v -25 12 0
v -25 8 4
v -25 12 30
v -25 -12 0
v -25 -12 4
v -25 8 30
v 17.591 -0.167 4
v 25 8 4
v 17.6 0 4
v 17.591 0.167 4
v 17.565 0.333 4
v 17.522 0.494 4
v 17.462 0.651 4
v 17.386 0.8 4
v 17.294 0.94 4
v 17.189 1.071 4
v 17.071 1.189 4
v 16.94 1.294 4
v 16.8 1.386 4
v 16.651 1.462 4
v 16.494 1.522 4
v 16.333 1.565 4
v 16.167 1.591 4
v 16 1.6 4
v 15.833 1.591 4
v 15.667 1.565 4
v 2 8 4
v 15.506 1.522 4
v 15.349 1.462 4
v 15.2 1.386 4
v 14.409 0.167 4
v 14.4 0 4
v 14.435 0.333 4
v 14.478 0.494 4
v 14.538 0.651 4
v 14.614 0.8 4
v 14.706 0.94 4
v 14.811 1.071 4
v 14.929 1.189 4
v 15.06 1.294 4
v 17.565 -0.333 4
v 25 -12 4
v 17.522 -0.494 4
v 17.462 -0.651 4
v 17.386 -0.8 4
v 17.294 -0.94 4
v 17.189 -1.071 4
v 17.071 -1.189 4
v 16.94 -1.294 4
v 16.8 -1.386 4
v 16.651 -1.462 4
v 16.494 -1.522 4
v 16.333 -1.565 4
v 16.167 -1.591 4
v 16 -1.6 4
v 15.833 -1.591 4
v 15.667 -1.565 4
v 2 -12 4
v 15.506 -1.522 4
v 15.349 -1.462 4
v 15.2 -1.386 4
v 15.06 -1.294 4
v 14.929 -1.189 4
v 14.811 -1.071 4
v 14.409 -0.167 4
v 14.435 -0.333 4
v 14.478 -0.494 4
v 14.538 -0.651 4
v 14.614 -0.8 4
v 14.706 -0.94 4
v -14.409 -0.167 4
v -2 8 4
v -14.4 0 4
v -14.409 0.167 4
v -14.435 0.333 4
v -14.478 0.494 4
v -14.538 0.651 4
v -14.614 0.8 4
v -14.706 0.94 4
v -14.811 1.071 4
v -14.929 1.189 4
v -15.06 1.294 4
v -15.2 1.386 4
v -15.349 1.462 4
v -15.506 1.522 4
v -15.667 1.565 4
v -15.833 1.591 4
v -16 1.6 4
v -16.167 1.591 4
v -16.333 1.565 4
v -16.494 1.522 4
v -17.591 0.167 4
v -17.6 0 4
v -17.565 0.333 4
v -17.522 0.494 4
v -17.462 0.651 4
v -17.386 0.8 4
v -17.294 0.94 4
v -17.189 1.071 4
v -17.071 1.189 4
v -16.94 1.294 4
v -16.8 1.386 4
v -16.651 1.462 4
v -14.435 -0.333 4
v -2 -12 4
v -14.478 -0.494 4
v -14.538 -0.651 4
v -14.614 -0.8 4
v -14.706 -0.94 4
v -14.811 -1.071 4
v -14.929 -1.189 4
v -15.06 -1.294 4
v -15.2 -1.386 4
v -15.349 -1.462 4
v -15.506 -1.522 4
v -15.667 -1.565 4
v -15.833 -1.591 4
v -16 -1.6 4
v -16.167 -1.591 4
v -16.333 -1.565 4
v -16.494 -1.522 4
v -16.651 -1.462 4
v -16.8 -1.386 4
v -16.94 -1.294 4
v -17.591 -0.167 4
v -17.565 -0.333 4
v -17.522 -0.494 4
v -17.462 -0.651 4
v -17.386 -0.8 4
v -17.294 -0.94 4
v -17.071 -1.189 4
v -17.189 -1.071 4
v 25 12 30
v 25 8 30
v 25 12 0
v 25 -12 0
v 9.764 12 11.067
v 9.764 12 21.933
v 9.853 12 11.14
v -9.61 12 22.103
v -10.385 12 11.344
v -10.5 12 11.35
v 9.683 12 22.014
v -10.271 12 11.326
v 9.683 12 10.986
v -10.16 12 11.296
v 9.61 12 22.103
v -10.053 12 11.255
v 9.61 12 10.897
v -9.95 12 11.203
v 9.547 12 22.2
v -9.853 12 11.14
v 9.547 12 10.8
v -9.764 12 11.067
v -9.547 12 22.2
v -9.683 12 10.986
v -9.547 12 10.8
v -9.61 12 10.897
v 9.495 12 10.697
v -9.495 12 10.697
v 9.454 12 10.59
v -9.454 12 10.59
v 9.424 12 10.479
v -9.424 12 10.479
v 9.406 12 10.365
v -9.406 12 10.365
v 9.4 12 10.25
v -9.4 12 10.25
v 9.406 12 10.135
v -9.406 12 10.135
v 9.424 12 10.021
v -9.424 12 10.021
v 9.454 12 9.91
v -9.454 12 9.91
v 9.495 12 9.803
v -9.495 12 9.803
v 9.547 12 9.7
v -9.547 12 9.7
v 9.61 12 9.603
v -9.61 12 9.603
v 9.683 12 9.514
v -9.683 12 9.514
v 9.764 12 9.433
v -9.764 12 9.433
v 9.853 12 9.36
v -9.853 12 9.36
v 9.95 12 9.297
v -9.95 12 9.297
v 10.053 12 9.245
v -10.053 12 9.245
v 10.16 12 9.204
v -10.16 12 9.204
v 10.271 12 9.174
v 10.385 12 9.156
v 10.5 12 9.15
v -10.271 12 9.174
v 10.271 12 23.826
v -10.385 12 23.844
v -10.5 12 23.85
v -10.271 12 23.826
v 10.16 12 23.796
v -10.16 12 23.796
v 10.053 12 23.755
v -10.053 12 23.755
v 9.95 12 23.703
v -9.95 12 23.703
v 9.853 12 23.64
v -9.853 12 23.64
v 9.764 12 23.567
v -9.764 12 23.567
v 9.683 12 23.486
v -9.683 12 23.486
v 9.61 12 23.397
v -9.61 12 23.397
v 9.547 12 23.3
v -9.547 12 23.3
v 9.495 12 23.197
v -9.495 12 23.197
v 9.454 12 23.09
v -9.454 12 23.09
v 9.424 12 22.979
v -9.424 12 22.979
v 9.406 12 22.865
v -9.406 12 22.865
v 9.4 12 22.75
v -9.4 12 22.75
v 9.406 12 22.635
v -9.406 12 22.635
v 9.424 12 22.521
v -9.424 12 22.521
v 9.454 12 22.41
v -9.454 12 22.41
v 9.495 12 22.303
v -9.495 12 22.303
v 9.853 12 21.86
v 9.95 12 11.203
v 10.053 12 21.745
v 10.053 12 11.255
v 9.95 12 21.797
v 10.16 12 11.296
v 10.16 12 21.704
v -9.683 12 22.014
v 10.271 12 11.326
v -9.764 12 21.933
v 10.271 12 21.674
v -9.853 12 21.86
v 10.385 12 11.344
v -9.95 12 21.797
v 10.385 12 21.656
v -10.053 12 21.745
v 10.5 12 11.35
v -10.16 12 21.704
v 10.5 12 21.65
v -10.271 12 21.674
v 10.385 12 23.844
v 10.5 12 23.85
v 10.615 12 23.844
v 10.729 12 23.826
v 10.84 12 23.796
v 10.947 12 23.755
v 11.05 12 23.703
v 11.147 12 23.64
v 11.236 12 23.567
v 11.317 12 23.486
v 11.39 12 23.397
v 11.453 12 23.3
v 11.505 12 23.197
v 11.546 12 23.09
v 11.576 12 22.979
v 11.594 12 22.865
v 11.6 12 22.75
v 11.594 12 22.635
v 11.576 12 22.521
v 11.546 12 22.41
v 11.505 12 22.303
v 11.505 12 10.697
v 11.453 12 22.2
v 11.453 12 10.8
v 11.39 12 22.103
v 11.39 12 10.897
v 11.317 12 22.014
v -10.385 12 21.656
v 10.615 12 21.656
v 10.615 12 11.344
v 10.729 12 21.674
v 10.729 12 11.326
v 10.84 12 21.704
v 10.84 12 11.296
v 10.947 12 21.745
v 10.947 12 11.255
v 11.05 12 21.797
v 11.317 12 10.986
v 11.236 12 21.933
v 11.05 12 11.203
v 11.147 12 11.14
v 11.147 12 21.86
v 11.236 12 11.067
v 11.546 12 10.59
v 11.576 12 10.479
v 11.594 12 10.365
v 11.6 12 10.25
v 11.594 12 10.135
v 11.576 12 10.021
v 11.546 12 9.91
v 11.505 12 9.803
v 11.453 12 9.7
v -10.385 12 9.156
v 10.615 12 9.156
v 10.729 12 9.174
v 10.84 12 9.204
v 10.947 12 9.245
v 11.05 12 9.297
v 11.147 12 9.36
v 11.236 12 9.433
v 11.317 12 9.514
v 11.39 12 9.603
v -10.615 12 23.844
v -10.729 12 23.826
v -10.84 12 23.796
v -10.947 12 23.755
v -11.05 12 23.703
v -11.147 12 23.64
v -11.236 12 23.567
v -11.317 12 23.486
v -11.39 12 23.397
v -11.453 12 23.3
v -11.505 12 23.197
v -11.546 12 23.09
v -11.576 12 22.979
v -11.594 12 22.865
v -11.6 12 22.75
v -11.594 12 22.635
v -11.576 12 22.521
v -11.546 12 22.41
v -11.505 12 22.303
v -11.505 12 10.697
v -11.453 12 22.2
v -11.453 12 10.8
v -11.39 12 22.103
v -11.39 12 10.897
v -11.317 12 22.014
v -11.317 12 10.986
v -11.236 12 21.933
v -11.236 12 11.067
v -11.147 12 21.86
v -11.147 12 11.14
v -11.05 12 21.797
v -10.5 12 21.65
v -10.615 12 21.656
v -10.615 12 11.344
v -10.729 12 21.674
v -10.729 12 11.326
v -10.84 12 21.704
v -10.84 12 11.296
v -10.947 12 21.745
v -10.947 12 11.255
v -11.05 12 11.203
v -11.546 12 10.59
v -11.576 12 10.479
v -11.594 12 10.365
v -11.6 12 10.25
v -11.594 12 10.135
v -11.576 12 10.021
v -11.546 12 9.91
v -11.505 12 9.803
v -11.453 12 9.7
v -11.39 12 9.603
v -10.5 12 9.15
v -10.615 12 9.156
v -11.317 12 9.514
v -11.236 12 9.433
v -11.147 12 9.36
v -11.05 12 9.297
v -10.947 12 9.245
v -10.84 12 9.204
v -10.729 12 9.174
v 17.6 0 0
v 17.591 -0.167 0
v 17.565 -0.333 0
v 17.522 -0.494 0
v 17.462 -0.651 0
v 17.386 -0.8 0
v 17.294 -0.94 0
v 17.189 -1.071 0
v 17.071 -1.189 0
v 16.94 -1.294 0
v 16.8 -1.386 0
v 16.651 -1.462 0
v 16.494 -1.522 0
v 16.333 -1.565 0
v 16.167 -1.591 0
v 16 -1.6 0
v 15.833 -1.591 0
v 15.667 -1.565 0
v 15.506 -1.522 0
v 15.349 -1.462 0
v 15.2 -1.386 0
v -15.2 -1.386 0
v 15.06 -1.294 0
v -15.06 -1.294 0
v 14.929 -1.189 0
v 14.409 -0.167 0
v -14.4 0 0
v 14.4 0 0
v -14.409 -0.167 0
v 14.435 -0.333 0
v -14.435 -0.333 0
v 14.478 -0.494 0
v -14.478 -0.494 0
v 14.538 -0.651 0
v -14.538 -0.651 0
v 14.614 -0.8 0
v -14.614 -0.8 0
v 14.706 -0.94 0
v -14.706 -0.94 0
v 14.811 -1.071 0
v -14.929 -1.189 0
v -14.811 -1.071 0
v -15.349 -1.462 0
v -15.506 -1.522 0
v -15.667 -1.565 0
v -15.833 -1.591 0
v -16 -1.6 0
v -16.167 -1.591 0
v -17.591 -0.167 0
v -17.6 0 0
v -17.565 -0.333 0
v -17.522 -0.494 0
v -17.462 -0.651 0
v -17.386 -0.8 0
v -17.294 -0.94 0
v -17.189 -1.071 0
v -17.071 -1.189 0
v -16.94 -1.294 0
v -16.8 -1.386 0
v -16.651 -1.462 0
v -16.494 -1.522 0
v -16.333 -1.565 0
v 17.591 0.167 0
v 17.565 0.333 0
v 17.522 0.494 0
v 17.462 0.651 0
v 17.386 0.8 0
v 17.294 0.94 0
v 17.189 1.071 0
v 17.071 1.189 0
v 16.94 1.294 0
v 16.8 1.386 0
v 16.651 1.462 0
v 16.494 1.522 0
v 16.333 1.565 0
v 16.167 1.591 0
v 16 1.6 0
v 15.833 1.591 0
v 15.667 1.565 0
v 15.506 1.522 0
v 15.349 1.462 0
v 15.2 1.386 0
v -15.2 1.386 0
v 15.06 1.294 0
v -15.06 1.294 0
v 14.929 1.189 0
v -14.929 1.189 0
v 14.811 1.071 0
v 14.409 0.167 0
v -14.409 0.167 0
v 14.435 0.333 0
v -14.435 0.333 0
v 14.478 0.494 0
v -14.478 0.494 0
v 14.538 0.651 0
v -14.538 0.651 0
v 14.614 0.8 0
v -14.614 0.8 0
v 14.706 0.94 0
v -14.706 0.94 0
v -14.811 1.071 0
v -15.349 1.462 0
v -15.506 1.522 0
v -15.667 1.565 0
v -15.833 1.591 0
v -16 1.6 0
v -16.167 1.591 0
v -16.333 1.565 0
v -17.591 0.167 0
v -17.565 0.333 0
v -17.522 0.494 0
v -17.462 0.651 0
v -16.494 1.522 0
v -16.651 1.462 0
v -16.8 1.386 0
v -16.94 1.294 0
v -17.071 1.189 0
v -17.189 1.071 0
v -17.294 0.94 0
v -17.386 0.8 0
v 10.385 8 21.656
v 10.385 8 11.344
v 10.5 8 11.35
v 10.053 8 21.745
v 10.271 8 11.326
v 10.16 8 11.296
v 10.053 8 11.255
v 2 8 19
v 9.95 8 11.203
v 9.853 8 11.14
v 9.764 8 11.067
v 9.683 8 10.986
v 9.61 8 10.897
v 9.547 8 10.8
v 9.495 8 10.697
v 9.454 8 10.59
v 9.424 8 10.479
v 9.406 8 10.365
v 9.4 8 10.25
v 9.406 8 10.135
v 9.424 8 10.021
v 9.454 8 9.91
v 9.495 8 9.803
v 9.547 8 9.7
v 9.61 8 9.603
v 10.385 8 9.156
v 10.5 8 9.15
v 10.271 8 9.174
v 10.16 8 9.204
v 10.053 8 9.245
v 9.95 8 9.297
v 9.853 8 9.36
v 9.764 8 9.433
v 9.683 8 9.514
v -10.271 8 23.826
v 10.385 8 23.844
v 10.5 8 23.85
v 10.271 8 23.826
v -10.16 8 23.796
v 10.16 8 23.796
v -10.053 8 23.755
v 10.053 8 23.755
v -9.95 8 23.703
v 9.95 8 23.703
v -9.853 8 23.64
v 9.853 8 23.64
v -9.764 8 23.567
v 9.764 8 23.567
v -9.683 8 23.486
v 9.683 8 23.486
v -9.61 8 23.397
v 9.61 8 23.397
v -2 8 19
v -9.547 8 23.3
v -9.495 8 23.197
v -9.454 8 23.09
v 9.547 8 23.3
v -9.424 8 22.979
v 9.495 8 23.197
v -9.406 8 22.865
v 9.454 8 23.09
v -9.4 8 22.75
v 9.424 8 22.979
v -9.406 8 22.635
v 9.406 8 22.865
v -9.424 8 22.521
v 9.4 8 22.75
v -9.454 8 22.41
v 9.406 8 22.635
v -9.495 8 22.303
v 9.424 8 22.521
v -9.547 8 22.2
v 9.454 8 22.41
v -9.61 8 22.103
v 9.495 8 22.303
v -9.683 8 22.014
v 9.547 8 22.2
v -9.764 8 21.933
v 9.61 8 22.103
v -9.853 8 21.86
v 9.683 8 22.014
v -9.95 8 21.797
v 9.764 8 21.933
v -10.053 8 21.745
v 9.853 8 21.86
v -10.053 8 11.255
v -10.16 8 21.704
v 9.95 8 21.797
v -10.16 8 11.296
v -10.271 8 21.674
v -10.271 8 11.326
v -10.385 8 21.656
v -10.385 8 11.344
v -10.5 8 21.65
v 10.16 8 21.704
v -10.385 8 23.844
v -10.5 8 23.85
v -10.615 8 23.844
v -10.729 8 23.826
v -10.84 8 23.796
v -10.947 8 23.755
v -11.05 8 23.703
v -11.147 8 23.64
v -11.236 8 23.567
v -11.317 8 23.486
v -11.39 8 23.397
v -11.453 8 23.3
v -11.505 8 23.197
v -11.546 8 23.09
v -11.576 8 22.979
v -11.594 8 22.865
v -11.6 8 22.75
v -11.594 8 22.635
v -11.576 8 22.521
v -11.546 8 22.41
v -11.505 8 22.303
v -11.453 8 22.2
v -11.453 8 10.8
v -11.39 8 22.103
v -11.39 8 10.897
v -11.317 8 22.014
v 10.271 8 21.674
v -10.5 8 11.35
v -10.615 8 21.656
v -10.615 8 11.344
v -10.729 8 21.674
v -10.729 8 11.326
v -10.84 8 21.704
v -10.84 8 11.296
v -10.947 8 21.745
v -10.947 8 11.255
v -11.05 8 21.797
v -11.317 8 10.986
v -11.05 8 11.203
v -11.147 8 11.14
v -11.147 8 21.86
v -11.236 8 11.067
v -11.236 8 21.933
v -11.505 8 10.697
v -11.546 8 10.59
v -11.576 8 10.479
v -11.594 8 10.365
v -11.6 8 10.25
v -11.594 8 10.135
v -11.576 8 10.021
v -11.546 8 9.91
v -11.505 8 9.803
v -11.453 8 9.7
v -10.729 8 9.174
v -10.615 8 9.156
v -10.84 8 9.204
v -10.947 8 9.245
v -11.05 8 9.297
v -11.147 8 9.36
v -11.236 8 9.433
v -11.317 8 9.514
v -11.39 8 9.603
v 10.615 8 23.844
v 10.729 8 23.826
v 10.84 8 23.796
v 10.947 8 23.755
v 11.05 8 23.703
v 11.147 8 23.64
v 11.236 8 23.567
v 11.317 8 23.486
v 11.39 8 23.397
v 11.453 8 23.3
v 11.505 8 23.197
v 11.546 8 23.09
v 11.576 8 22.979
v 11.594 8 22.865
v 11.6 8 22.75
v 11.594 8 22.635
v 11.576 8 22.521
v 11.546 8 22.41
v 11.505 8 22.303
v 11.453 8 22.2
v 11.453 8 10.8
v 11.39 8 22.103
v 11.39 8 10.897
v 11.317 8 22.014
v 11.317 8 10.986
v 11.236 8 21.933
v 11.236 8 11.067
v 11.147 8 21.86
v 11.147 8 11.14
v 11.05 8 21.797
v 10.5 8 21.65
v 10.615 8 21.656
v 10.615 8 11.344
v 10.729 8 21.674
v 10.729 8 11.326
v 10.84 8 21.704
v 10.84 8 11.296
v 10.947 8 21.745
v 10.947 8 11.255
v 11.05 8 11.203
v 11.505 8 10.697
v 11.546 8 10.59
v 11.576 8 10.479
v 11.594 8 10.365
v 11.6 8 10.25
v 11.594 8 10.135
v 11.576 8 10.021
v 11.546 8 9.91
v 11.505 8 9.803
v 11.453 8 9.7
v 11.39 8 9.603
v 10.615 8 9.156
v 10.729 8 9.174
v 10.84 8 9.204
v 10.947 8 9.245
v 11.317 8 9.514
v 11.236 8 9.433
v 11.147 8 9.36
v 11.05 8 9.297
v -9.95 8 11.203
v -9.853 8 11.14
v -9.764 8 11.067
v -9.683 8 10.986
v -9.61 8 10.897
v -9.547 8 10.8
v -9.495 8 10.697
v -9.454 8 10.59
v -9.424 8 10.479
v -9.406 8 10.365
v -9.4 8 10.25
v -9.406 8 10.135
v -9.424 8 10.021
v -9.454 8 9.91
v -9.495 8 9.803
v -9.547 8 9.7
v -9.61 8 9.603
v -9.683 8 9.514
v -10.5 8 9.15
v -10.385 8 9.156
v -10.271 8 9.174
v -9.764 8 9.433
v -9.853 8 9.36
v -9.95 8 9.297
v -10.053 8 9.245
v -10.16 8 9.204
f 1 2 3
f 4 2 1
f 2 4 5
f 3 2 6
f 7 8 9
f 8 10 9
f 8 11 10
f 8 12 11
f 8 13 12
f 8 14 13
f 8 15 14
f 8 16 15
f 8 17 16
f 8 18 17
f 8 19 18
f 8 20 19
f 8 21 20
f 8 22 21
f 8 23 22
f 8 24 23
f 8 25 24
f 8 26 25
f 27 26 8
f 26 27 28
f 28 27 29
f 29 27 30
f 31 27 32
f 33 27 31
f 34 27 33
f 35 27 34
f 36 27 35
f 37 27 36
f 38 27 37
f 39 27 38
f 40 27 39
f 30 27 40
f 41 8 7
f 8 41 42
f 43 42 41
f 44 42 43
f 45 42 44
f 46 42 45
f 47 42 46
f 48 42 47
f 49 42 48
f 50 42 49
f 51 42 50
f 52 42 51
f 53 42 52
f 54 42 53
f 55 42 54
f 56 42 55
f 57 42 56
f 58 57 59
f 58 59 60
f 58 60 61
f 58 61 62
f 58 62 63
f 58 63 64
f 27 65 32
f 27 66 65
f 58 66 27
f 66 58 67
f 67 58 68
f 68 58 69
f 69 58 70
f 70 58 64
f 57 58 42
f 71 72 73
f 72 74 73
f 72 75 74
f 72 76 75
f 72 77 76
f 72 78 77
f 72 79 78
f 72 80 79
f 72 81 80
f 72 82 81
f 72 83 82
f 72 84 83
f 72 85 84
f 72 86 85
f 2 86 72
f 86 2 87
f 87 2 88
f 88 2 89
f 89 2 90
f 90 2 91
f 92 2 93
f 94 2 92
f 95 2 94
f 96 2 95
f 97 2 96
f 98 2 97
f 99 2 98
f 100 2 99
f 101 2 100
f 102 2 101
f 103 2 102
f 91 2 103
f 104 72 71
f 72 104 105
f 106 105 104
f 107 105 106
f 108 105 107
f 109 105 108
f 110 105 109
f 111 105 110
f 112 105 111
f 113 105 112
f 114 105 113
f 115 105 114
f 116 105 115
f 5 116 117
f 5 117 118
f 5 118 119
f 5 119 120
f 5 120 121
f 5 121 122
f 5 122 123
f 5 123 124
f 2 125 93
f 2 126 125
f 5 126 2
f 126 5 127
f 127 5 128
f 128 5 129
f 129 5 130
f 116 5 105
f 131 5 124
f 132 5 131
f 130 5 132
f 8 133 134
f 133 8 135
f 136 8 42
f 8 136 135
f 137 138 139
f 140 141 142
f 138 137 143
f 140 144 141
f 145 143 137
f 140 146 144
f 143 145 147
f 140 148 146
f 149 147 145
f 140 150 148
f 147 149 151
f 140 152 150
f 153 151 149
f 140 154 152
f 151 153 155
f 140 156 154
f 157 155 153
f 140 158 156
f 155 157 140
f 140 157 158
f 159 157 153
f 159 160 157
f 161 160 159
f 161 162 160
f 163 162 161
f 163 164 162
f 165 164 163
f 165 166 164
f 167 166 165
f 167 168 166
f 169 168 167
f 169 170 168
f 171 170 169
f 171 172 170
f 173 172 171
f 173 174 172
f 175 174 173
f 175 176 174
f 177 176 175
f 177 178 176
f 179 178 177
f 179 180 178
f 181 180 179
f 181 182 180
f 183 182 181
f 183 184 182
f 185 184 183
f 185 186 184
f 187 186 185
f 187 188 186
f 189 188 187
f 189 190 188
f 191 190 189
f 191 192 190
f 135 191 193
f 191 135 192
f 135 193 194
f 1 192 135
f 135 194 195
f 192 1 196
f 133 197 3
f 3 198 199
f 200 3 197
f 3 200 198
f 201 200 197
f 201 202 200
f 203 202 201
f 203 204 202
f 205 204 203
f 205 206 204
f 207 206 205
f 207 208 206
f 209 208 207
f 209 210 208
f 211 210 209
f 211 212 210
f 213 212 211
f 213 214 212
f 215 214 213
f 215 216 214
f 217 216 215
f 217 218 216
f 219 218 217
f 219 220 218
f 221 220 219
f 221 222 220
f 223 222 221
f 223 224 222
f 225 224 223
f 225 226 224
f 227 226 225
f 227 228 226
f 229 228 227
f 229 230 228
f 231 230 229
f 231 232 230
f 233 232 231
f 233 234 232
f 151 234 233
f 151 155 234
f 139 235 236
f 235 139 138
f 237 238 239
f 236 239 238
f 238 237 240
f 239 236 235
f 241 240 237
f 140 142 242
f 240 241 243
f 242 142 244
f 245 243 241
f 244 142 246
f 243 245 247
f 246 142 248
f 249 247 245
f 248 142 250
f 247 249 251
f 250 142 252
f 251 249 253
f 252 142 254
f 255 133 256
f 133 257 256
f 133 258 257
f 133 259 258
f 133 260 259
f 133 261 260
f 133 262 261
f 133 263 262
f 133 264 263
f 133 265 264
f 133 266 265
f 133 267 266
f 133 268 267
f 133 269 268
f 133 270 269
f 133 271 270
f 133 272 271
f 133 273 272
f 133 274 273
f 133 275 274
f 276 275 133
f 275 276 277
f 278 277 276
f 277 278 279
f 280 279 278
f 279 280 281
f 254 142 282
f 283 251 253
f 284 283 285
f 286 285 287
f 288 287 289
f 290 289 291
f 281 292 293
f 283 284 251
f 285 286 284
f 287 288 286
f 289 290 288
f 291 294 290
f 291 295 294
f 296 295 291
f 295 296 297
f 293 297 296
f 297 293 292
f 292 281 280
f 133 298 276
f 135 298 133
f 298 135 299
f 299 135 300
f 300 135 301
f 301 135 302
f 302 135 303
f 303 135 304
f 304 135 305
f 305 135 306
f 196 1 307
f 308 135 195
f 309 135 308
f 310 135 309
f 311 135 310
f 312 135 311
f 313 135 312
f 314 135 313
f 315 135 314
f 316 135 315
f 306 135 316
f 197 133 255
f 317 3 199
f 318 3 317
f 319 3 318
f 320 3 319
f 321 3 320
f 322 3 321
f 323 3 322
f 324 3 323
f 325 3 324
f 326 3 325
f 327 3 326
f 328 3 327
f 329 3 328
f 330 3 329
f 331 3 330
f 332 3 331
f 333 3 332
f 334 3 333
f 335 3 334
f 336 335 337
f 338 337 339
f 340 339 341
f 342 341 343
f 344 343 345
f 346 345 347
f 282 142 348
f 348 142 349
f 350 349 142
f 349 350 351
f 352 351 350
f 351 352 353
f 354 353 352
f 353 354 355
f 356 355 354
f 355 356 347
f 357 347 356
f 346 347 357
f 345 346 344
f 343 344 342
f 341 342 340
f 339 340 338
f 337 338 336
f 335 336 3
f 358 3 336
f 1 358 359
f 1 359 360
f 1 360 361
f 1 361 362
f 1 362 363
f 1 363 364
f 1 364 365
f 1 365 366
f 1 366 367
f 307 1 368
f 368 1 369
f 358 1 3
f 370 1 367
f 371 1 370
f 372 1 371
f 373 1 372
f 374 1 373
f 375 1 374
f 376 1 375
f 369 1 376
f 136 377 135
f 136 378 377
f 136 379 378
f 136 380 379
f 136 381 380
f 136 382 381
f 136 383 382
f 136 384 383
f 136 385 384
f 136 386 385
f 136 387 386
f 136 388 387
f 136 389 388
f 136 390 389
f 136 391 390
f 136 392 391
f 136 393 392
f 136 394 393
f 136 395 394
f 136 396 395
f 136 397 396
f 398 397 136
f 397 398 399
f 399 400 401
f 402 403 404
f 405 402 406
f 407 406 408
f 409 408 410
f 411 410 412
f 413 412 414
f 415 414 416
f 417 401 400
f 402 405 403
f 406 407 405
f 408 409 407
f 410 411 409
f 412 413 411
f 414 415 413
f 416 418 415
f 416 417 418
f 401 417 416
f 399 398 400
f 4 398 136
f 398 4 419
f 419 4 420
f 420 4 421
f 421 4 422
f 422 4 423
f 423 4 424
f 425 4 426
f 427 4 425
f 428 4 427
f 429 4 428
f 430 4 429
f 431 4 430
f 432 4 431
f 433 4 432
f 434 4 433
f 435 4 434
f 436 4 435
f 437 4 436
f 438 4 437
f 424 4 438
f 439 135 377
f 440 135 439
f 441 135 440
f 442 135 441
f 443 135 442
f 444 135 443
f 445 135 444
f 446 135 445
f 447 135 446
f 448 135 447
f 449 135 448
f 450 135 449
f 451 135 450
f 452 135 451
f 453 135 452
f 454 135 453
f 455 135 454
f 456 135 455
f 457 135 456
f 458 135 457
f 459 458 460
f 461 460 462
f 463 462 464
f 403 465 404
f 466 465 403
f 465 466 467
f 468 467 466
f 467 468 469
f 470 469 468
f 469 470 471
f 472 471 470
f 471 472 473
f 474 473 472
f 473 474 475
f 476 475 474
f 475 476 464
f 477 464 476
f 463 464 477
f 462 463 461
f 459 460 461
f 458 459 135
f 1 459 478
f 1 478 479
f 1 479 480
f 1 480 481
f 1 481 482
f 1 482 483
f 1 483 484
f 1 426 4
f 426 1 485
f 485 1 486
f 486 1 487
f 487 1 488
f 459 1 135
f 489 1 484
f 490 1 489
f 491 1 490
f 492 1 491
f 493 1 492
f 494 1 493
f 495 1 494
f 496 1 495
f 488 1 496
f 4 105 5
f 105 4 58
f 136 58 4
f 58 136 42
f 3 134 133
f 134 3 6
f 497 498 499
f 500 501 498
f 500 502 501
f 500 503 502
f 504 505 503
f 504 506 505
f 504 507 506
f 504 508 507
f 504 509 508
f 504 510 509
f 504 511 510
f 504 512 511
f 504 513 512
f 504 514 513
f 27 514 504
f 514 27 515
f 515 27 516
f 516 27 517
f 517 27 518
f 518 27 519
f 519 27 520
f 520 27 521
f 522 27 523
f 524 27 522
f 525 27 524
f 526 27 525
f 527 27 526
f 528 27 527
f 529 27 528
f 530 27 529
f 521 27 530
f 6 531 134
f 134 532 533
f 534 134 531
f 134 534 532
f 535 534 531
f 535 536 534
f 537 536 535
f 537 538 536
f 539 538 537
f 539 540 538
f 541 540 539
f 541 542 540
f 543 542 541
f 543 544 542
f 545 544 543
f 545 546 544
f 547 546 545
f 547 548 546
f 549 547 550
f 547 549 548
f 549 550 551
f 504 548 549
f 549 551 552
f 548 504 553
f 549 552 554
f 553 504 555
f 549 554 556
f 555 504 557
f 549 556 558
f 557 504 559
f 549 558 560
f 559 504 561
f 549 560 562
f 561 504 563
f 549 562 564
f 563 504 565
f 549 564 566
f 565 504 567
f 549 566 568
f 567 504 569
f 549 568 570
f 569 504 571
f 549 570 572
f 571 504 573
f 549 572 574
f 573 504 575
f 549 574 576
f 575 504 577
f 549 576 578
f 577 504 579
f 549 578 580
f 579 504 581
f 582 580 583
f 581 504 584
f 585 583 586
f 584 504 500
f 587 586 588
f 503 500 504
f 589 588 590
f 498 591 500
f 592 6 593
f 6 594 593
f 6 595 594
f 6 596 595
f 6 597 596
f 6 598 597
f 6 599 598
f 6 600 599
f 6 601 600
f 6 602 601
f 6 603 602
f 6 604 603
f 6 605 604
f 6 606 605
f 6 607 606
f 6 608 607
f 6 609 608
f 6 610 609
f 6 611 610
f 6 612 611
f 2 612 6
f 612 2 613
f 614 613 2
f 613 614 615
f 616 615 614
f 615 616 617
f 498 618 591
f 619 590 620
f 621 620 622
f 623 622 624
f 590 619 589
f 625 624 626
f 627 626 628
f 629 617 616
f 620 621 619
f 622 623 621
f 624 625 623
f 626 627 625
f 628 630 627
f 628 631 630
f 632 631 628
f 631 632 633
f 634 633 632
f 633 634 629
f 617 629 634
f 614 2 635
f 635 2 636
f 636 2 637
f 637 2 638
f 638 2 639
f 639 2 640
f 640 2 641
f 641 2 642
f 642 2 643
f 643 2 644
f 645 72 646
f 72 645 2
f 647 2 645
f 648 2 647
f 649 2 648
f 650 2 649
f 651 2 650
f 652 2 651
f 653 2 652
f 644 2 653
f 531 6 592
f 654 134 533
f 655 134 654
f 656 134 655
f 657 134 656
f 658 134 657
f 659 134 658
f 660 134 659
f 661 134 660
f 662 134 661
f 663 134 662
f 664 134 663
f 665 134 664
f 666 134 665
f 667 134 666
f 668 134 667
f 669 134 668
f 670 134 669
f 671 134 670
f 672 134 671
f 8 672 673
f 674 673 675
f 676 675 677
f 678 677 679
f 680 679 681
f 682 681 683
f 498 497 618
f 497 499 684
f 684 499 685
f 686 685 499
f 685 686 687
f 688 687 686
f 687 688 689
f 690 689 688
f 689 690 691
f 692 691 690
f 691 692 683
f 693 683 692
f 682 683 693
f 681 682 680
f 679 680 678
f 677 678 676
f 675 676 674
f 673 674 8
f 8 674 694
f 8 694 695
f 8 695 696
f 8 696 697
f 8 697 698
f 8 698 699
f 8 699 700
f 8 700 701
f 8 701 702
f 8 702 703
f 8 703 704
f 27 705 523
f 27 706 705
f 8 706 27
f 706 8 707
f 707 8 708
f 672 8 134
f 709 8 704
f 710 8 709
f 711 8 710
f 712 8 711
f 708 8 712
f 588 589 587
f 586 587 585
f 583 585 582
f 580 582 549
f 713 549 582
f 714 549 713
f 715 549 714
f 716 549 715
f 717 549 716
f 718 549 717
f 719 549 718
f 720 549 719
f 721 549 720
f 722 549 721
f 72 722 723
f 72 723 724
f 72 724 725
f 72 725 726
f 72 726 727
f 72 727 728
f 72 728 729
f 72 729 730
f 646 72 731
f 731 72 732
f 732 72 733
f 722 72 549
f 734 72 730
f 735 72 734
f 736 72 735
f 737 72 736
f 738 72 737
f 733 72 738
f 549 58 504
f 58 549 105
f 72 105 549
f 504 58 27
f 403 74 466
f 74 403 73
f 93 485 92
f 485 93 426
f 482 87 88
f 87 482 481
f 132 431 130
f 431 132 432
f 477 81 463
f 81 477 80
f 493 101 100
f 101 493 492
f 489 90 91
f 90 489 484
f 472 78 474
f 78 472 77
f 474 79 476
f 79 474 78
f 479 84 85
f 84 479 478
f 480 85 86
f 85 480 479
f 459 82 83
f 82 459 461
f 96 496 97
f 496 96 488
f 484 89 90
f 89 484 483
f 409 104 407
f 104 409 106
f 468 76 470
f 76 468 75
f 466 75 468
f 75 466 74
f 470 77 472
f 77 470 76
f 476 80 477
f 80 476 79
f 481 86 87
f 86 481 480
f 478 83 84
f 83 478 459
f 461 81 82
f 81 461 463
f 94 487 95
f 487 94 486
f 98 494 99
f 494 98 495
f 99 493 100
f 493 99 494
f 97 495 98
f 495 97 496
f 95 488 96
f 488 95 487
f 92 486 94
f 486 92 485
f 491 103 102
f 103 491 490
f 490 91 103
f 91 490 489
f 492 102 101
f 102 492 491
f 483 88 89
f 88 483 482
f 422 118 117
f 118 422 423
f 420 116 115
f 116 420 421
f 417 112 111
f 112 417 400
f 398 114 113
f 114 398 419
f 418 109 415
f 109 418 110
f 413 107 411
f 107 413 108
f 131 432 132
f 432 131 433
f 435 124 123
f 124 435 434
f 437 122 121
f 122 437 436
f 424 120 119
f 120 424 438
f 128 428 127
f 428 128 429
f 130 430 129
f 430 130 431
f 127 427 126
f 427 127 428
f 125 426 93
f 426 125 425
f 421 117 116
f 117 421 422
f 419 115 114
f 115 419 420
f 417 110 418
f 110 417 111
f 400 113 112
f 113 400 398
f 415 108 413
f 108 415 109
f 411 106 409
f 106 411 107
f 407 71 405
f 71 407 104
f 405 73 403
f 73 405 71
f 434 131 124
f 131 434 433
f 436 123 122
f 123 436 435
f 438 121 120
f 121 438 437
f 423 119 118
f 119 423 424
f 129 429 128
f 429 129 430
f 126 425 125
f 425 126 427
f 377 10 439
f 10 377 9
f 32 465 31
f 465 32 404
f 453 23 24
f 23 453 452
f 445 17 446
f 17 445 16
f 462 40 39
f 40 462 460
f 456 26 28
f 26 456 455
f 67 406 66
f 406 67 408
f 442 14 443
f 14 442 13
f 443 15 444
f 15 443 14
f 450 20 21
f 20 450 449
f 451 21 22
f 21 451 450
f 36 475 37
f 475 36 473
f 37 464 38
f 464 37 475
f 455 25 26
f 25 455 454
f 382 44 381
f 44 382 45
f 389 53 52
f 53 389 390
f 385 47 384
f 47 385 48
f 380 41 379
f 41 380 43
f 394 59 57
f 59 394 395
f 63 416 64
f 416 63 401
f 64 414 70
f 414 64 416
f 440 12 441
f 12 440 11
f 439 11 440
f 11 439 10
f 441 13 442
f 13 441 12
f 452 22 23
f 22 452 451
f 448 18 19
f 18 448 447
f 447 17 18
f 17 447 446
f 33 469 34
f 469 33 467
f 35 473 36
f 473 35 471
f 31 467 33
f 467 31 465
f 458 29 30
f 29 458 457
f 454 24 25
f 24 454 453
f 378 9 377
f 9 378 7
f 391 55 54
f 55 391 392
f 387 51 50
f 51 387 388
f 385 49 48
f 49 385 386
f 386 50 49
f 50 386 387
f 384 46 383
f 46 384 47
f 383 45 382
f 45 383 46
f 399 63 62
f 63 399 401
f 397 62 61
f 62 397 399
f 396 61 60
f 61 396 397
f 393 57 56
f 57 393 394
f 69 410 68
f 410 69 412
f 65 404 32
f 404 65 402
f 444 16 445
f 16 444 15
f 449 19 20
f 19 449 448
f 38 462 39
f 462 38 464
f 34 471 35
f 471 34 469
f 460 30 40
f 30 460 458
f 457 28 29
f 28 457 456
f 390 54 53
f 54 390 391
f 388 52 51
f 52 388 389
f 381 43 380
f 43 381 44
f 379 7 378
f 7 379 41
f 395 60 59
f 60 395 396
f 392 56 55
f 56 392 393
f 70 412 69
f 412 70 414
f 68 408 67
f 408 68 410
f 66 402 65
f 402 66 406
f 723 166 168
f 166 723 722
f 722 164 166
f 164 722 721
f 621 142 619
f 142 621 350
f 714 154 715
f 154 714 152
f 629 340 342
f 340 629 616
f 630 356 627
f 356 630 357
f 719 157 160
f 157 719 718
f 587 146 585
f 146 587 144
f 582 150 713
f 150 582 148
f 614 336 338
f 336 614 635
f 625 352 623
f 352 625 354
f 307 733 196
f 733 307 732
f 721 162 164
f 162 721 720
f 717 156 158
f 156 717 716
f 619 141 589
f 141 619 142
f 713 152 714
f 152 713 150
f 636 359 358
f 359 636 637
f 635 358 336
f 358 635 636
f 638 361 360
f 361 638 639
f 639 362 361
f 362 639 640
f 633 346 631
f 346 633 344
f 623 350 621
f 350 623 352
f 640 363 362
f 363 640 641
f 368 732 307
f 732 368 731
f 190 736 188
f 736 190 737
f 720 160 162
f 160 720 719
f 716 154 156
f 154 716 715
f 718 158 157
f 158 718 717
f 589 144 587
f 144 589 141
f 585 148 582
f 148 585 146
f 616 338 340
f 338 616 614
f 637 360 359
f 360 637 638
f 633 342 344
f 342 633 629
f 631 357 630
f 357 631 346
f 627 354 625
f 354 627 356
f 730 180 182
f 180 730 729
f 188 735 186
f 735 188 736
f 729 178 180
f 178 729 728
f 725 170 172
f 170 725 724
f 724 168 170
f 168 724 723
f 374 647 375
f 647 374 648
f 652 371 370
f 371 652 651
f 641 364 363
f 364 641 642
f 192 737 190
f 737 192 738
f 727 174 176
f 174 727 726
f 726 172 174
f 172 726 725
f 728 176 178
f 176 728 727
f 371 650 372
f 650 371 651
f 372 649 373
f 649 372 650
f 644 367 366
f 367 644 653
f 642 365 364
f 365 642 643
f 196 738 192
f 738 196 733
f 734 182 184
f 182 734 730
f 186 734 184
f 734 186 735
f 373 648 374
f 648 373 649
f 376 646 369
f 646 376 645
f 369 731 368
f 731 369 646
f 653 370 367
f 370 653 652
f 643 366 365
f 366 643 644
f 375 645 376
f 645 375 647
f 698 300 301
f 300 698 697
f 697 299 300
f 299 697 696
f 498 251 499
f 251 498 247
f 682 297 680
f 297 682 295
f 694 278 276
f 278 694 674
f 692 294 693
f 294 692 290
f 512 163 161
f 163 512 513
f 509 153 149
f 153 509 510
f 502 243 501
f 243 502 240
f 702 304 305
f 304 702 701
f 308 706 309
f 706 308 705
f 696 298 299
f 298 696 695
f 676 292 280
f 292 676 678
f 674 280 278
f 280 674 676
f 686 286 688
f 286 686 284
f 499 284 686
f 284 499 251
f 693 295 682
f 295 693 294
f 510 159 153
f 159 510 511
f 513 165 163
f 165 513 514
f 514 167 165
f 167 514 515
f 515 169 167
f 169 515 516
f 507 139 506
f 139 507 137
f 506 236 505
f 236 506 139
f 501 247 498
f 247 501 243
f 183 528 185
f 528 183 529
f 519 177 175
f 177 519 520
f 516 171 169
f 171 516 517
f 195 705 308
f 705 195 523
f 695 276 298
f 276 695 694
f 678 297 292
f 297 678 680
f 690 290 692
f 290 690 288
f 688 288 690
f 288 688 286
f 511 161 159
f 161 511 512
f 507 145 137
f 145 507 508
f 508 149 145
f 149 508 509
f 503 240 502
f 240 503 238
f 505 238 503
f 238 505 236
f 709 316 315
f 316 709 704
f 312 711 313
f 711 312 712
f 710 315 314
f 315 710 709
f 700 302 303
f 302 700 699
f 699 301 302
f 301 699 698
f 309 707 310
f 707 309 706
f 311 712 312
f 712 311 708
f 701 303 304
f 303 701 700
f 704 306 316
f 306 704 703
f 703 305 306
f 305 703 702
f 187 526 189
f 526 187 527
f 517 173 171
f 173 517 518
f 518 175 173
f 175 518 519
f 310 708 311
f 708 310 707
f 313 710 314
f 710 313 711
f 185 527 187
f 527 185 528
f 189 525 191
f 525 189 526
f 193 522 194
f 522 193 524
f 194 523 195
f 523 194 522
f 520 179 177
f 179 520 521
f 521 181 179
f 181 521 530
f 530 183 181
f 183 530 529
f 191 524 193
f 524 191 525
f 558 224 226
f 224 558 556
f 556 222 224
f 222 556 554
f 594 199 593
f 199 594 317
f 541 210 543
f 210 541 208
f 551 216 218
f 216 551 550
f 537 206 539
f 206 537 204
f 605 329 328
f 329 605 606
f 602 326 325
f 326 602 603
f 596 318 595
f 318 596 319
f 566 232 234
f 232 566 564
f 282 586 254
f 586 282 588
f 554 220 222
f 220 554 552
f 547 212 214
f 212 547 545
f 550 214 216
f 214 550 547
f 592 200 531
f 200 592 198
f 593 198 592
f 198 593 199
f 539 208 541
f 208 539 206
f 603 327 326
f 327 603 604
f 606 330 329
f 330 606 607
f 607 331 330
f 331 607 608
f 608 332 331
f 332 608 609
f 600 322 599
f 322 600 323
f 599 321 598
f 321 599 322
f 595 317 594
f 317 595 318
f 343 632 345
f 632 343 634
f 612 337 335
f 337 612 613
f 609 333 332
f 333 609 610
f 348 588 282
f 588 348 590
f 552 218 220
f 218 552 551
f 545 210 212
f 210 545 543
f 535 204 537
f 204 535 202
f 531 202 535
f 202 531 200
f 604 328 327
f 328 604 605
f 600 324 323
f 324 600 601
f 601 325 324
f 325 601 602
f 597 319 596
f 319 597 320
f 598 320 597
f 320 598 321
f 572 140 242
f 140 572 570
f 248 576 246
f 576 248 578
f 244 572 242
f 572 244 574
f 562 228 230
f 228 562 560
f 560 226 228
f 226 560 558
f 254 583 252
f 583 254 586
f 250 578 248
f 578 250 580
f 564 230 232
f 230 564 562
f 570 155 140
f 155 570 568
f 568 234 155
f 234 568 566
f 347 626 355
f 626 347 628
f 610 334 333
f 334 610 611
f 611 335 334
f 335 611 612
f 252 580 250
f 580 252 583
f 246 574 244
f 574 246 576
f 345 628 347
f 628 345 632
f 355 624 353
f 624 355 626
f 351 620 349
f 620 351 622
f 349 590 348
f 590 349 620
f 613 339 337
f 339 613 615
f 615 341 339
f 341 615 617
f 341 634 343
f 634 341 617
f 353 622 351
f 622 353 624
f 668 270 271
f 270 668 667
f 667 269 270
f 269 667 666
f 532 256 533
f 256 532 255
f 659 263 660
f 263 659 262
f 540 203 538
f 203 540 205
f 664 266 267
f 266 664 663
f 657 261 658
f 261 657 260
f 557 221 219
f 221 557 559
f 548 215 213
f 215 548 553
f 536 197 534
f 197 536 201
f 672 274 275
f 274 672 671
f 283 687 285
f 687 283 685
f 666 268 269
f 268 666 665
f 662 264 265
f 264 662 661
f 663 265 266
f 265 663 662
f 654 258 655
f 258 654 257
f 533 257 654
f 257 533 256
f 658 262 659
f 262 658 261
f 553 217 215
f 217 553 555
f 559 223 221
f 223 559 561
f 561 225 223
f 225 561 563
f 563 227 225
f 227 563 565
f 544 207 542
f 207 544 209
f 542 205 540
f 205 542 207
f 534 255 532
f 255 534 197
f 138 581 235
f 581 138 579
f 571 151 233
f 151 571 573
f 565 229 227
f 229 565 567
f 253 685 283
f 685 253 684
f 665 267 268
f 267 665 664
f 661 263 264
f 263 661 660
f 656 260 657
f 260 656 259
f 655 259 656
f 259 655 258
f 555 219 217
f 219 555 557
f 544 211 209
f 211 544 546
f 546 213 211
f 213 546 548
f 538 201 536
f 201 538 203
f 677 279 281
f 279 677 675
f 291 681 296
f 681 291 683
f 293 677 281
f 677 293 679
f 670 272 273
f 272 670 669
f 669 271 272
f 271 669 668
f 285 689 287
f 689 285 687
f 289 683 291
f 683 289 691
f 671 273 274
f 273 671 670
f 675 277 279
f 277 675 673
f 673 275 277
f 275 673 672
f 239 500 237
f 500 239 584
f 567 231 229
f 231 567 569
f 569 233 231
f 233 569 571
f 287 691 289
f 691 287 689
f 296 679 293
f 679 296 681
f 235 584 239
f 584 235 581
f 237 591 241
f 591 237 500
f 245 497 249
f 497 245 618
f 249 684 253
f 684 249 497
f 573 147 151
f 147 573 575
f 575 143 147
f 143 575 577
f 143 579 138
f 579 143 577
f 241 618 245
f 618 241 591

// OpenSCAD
$fn = 60; // ความละเอียดรูกลมมาตรฐาน

module pi_cam3_damper_mount_fixed() {
    difference() {
        // --- 1. ชิ้นงานตันหลัก (Solid Body - แผ่นฐาน + ผนังตั้งทึบ + Rib ค้ำเนียน) ---
        union() {
            // [ฐานแบนราบรับลูกยาง] หนา 4mm ขนาดกว้าง 50x24mm หน้าสัมผัสเนียนราบเพื่อแนบกับฐานลูกยาง
            translate([-25, -12, 0]) cube([50, 24, 4]);
            
            // [ผนังตั้งหิ้วบอร์ดกล้อง] หนา 4mm แผ่นตันเต็มความแข็งแรงสูง (กว้าง 50mm / สูง 30mm)
            translate([-25, 8, 0]) cube([50, 4, 30]);
            
            // ====================================================
            // [แก้ไขแล้ว!] จัดระเบียบ Faces ใหม่ให้ Mesh ปิดสนิท ไม่เกิด Error ตอนกด F6
            // ====================================================
            translate([-2, -12, 4])
            polyhedron(
                points = [
                    [0,  0,  0],  // 0: หน้าล่างซ้าย
                    [4,  0,  0],  // 1: หน้าล่างขวา
                    [4, 20,  0],  // 2: หลังล่างขวา (ชนผนังตั้ง)
                    [0, 20,  0],  // 3: หลังล่างซ้าย (ชนผนังตั้ง)
                    [0, 20, 15],  // 4: หลังบนซ้าย (ชนผนังตั้ง)
                    [4, 20, 15]   // 5: หลังบนขวา (ชนผนังตั้ง)
                ],
                // เรียงลำดับทิศทางผิวหน้าใหม่ให้หันออกด้านนอกทุกด้าน (ทวนเข็ม/ตามเข็ม ตามกฎขวามือ)
                faces = [
                    [3, 2, 1, 0], // ฐานล่าง (มองจากใต้ท้อง)
                    [0, 1, 5, 4], // แนวสโลปเอียงลาดลงหน้า
                    [2, 3, 4, 5], // ผนังหลังที่แนบติดแผ่นตั้ง
                    [0, 4, 3],    // ผนังข้างฝั่งซ้าย
                    [1, 2, 5]     // ผนังข้างฝั่งขวา
                ]
            );
        }
        
        // --- 2. รูเจาะเรียบตรง ø3.2mm สำหรับรับเกลียวสกรู M3 ของลูกยาง Damper (2 จุด ระยะห่าง 32mm) ---
        translate([-16, 0, -1]) cylinder(d=3.2, h=10);
        translate([16, 0, -1]) cylinder(d=3.2, h=10);
        
        // --- 3. รูเจาะทะลุเรียบตรง ø2.2mm สำหรับน็อต M2 ยึดบอร์ดกล้อง Pi Cam 3 (4 จุดพิกัดเป๊ะ) ---
        // [รูคู่ล่าง] ระดับความสูง Z = 10.25mm
        translate([-10.5, 15, 10.25]) rotate([90,0,0]) cylinder(d=2.2, h=10);
        translate([10.5, 15, 10.25]) rotate([90,0,0]) cylinder(d=2.2, h=10);
        
        // [รูคู่บน] ระดับความสูง Z = 22.75mm
        translate([-10.5, 15, 22.75]) rotate([90,0,0]) cylinder(d=2.2, h=10);
        translate([10.5, 15, 22.75]) rotate([90,0,0]) cylinder(d=2.2, h=10);
    }
}

// เรียกใช้งานฟังก์ชันยึดกล้องเดี่ยวเวอร์ชันซ่อมแซมผิว Mesh เรียบร้อยแล้ว
pi_cam3_damper_mount_fixed();
